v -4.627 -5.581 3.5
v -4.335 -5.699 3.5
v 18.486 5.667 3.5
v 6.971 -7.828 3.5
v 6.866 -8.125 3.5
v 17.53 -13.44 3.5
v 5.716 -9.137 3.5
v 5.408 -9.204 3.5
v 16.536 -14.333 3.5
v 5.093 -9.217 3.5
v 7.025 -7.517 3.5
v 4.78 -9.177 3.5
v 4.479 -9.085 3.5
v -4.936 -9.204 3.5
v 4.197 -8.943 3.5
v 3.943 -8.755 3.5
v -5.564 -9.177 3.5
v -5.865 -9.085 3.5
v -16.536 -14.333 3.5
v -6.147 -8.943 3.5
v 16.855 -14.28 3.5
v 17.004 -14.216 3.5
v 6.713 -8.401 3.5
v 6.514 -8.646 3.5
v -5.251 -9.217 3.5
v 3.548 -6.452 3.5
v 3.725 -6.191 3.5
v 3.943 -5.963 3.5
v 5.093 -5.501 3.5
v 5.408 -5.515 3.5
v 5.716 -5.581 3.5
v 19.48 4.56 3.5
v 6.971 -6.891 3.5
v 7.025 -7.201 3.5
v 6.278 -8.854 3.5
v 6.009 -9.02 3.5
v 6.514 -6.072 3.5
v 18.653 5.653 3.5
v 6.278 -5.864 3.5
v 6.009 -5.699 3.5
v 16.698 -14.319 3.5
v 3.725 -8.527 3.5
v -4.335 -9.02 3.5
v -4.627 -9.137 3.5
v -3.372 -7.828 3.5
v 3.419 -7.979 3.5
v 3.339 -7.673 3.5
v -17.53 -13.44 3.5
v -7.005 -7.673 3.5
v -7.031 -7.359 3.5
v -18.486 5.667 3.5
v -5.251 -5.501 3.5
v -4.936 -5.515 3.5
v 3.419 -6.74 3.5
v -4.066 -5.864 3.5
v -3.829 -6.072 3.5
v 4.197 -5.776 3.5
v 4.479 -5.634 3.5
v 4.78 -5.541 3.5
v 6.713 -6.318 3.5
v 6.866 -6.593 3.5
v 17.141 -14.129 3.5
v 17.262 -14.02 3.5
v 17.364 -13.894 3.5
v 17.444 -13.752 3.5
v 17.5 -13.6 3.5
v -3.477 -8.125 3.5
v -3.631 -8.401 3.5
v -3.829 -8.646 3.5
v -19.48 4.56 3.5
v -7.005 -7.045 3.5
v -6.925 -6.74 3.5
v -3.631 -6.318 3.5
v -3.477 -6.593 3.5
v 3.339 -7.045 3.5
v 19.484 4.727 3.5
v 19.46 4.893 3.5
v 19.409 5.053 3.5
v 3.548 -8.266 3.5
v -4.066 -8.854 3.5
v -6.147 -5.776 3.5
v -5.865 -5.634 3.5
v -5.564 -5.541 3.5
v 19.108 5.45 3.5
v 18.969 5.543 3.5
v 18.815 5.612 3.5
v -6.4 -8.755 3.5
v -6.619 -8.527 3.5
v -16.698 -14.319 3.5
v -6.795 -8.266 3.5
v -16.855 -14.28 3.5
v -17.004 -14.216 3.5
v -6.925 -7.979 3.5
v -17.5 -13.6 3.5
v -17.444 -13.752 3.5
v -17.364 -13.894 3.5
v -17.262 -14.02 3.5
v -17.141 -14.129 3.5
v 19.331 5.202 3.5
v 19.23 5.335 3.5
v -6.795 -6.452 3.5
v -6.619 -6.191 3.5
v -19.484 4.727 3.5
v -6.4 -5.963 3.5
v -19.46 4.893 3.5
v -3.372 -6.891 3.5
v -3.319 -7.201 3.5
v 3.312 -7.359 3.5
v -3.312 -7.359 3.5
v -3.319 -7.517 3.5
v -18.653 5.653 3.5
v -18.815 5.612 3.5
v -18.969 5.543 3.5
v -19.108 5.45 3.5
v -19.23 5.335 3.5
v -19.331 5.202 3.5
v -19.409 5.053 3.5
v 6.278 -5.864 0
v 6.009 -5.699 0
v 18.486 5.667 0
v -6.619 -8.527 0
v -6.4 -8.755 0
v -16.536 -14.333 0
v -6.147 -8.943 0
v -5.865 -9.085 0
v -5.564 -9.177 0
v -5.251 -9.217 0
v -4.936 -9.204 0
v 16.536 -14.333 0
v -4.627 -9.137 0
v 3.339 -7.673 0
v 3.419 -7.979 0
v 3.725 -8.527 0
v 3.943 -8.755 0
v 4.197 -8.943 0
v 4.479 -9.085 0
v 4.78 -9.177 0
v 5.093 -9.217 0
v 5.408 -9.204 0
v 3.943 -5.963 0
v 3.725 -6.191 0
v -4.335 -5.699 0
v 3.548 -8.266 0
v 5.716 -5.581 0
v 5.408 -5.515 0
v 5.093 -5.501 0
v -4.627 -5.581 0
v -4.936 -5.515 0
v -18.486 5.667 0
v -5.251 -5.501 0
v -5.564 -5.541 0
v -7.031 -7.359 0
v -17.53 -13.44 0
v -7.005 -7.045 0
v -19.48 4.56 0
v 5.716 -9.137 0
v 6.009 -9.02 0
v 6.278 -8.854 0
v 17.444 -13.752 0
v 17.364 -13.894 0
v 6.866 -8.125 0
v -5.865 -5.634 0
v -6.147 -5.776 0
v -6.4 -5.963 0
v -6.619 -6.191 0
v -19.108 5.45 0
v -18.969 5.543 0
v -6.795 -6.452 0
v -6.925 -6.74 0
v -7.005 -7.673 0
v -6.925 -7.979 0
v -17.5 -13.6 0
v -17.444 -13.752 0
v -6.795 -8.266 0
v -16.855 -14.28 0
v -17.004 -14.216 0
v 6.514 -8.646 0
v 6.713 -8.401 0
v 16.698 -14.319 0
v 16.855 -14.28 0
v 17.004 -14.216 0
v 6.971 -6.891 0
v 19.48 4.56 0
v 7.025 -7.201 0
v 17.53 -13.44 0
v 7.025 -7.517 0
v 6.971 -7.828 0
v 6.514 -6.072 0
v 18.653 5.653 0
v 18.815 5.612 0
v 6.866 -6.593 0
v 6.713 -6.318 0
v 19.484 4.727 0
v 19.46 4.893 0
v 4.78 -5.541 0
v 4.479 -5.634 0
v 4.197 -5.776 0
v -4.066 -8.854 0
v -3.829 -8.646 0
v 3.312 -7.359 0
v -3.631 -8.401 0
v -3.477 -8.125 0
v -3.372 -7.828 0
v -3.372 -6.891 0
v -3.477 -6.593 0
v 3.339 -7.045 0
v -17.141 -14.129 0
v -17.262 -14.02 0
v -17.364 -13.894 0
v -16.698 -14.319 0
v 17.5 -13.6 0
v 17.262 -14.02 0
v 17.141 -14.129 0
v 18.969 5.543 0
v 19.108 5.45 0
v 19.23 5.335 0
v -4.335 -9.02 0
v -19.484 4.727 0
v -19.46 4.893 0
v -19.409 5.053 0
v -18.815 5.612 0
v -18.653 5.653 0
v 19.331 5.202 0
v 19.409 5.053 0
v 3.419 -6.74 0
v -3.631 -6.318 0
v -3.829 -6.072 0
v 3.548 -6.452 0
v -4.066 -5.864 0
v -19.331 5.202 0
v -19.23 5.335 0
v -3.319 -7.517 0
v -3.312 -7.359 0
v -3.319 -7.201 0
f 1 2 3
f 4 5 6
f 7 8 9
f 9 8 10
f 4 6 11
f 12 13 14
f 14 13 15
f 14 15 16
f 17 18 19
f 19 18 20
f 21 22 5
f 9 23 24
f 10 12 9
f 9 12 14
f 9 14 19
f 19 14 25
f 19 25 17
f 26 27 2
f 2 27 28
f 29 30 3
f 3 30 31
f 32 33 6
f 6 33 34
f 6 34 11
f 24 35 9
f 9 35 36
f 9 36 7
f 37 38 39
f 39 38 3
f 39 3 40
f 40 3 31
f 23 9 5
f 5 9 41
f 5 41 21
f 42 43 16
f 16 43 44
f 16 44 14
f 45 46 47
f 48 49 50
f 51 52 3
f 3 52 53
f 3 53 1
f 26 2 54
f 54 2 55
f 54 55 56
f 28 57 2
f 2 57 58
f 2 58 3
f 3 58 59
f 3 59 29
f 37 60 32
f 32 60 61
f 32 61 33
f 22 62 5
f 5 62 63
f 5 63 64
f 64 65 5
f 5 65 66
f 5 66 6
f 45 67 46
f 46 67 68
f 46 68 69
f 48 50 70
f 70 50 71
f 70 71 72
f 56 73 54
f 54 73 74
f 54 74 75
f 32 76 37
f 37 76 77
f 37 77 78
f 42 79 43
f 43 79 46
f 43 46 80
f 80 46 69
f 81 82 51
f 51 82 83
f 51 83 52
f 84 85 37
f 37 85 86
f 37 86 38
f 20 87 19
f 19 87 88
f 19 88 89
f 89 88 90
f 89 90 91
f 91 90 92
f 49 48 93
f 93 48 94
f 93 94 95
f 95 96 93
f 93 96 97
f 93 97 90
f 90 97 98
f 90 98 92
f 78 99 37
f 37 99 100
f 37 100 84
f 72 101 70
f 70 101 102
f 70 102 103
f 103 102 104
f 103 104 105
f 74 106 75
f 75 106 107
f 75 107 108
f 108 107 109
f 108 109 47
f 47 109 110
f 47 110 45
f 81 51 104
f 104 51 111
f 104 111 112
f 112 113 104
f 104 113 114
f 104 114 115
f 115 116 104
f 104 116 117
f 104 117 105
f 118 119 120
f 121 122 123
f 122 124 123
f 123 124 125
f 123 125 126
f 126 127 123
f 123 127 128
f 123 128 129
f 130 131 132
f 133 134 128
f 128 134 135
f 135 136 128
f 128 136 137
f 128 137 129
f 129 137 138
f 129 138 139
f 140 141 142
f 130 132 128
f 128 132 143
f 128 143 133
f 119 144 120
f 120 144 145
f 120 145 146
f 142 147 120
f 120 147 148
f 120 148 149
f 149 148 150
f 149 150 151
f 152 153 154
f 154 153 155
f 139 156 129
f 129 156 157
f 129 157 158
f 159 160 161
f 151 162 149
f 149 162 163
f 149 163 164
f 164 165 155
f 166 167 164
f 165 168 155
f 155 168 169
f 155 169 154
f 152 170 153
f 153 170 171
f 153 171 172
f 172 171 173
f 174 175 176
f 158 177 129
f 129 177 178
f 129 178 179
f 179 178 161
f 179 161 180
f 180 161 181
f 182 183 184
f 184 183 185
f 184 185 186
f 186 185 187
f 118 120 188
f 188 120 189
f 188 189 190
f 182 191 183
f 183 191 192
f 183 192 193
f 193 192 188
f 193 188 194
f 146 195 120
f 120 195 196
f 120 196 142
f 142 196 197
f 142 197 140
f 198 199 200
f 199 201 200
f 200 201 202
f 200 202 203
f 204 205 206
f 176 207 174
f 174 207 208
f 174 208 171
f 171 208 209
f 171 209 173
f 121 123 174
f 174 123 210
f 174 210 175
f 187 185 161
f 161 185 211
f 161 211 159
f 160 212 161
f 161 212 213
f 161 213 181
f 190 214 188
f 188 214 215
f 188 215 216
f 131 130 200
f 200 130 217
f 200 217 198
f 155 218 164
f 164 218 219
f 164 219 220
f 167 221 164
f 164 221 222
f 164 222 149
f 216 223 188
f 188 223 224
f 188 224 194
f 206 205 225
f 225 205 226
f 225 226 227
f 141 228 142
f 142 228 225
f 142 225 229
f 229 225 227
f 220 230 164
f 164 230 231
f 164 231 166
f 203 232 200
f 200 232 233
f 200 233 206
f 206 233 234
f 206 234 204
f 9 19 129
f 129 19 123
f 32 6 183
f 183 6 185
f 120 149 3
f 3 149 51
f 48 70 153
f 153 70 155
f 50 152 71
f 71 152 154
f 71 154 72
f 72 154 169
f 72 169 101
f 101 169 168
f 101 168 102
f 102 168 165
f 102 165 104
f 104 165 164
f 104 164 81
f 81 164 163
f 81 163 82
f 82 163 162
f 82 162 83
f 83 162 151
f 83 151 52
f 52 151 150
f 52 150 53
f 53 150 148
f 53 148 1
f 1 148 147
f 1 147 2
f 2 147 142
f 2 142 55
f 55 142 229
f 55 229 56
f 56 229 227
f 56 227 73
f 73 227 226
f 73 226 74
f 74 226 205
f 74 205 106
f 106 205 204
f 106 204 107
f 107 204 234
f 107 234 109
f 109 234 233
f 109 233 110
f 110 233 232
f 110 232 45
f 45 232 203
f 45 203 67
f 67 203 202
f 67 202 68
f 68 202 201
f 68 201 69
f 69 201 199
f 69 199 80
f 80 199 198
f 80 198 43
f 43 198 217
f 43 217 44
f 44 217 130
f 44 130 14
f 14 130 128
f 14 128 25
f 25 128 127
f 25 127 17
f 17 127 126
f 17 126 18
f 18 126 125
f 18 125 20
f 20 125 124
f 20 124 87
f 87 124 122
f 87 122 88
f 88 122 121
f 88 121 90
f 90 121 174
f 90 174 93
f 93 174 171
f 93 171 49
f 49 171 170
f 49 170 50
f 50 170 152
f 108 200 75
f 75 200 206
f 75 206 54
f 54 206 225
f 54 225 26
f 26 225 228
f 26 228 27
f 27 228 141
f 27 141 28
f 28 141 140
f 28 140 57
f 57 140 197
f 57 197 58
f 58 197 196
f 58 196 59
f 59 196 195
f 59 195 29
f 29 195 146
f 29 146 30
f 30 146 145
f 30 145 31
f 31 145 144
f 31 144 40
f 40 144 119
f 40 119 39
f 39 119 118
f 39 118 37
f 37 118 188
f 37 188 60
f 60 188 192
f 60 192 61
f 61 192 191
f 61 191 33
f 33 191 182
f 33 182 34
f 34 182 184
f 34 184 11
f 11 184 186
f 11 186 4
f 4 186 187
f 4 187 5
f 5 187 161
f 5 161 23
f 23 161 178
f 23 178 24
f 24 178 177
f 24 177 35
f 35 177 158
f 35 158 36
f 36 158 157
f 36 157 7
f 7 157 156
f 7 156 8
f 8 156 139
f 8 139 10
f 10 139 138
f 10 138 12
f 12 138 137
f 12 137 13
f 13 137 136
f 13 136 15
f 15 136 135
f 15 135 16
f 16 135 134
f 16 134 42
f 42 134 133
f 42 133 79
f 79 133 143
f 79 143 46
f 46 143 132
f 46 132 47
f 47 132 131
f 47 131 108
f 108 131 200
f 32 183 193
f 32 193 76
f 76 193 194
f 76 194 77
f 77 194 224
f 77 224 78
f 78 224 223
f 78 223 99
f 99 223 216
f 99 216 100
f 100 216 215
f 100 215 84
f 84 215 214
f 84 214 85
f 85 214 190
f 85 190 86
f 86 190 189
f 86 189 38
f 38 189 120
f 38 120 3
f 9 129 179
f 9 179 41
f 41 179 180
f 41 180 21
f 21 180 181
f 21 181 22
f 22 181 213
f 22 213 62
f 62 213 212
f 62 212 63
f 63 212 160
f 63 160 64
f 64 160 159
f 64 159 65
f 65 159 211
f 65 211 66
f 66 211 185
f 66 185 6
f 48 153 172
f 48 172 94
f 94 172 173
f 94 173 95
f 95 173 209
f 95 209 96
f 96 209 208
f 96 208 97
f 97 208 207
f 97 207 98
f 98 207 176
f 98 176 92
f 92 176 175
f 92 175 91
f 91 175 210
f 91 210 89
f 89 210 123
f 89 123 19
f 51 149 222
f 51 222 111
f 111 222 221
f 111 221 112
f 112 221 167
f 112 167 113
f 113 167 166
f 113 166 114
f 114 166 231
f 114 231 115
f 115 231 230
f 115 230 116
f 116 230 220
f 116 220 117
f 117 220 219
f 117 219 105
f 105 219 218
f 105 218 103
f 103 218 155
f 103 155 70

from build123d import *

# Parameters (mm, degrees)
SKETCH_1_R      = 1.85956852
EXTRUDE_1_DEPTH = 3.5
FILLET_1_R      = 1


with BuildPart() as part:
    # 草图1 → 凸台-拉伸1 (new body)
    with BuildSketch(Plane.XY):
        Polygon((-17.433454878, -14.332572831), (-19.600121545, 5.667427169), (19.600121545, 5.667427169), (17.433454878, -14.332572831), align=None)
        with Locations((-5.171924947, -7.35919088)):
            Circle(SKETCH_1_R, mode=Mode.SUBTRACT)
        with Locations(Location((5.171924947, -7.35919088, 0), (0, 0, 180))):
            Circle(SKETCH_1_R, mode=Mode.SUBTRACT)
    extrude(amount=EXTRUDE_1_DEPTH)

    # 圆角1
    fillet_1_edges = [part.edges().sort_by_distance(p)[0] for p in [
        (-17.433454878, -14.332572831, 1.75),
        (-19.600121545, 5.667427169, 1.75),
        (19.600121545, 5.667427169, 1.75),
        (17.433454878, -14.332572831, 1.75),
    ]]
    fillet(fillet_1_edges, radius=FILLET_1_R)


solid = part.part
